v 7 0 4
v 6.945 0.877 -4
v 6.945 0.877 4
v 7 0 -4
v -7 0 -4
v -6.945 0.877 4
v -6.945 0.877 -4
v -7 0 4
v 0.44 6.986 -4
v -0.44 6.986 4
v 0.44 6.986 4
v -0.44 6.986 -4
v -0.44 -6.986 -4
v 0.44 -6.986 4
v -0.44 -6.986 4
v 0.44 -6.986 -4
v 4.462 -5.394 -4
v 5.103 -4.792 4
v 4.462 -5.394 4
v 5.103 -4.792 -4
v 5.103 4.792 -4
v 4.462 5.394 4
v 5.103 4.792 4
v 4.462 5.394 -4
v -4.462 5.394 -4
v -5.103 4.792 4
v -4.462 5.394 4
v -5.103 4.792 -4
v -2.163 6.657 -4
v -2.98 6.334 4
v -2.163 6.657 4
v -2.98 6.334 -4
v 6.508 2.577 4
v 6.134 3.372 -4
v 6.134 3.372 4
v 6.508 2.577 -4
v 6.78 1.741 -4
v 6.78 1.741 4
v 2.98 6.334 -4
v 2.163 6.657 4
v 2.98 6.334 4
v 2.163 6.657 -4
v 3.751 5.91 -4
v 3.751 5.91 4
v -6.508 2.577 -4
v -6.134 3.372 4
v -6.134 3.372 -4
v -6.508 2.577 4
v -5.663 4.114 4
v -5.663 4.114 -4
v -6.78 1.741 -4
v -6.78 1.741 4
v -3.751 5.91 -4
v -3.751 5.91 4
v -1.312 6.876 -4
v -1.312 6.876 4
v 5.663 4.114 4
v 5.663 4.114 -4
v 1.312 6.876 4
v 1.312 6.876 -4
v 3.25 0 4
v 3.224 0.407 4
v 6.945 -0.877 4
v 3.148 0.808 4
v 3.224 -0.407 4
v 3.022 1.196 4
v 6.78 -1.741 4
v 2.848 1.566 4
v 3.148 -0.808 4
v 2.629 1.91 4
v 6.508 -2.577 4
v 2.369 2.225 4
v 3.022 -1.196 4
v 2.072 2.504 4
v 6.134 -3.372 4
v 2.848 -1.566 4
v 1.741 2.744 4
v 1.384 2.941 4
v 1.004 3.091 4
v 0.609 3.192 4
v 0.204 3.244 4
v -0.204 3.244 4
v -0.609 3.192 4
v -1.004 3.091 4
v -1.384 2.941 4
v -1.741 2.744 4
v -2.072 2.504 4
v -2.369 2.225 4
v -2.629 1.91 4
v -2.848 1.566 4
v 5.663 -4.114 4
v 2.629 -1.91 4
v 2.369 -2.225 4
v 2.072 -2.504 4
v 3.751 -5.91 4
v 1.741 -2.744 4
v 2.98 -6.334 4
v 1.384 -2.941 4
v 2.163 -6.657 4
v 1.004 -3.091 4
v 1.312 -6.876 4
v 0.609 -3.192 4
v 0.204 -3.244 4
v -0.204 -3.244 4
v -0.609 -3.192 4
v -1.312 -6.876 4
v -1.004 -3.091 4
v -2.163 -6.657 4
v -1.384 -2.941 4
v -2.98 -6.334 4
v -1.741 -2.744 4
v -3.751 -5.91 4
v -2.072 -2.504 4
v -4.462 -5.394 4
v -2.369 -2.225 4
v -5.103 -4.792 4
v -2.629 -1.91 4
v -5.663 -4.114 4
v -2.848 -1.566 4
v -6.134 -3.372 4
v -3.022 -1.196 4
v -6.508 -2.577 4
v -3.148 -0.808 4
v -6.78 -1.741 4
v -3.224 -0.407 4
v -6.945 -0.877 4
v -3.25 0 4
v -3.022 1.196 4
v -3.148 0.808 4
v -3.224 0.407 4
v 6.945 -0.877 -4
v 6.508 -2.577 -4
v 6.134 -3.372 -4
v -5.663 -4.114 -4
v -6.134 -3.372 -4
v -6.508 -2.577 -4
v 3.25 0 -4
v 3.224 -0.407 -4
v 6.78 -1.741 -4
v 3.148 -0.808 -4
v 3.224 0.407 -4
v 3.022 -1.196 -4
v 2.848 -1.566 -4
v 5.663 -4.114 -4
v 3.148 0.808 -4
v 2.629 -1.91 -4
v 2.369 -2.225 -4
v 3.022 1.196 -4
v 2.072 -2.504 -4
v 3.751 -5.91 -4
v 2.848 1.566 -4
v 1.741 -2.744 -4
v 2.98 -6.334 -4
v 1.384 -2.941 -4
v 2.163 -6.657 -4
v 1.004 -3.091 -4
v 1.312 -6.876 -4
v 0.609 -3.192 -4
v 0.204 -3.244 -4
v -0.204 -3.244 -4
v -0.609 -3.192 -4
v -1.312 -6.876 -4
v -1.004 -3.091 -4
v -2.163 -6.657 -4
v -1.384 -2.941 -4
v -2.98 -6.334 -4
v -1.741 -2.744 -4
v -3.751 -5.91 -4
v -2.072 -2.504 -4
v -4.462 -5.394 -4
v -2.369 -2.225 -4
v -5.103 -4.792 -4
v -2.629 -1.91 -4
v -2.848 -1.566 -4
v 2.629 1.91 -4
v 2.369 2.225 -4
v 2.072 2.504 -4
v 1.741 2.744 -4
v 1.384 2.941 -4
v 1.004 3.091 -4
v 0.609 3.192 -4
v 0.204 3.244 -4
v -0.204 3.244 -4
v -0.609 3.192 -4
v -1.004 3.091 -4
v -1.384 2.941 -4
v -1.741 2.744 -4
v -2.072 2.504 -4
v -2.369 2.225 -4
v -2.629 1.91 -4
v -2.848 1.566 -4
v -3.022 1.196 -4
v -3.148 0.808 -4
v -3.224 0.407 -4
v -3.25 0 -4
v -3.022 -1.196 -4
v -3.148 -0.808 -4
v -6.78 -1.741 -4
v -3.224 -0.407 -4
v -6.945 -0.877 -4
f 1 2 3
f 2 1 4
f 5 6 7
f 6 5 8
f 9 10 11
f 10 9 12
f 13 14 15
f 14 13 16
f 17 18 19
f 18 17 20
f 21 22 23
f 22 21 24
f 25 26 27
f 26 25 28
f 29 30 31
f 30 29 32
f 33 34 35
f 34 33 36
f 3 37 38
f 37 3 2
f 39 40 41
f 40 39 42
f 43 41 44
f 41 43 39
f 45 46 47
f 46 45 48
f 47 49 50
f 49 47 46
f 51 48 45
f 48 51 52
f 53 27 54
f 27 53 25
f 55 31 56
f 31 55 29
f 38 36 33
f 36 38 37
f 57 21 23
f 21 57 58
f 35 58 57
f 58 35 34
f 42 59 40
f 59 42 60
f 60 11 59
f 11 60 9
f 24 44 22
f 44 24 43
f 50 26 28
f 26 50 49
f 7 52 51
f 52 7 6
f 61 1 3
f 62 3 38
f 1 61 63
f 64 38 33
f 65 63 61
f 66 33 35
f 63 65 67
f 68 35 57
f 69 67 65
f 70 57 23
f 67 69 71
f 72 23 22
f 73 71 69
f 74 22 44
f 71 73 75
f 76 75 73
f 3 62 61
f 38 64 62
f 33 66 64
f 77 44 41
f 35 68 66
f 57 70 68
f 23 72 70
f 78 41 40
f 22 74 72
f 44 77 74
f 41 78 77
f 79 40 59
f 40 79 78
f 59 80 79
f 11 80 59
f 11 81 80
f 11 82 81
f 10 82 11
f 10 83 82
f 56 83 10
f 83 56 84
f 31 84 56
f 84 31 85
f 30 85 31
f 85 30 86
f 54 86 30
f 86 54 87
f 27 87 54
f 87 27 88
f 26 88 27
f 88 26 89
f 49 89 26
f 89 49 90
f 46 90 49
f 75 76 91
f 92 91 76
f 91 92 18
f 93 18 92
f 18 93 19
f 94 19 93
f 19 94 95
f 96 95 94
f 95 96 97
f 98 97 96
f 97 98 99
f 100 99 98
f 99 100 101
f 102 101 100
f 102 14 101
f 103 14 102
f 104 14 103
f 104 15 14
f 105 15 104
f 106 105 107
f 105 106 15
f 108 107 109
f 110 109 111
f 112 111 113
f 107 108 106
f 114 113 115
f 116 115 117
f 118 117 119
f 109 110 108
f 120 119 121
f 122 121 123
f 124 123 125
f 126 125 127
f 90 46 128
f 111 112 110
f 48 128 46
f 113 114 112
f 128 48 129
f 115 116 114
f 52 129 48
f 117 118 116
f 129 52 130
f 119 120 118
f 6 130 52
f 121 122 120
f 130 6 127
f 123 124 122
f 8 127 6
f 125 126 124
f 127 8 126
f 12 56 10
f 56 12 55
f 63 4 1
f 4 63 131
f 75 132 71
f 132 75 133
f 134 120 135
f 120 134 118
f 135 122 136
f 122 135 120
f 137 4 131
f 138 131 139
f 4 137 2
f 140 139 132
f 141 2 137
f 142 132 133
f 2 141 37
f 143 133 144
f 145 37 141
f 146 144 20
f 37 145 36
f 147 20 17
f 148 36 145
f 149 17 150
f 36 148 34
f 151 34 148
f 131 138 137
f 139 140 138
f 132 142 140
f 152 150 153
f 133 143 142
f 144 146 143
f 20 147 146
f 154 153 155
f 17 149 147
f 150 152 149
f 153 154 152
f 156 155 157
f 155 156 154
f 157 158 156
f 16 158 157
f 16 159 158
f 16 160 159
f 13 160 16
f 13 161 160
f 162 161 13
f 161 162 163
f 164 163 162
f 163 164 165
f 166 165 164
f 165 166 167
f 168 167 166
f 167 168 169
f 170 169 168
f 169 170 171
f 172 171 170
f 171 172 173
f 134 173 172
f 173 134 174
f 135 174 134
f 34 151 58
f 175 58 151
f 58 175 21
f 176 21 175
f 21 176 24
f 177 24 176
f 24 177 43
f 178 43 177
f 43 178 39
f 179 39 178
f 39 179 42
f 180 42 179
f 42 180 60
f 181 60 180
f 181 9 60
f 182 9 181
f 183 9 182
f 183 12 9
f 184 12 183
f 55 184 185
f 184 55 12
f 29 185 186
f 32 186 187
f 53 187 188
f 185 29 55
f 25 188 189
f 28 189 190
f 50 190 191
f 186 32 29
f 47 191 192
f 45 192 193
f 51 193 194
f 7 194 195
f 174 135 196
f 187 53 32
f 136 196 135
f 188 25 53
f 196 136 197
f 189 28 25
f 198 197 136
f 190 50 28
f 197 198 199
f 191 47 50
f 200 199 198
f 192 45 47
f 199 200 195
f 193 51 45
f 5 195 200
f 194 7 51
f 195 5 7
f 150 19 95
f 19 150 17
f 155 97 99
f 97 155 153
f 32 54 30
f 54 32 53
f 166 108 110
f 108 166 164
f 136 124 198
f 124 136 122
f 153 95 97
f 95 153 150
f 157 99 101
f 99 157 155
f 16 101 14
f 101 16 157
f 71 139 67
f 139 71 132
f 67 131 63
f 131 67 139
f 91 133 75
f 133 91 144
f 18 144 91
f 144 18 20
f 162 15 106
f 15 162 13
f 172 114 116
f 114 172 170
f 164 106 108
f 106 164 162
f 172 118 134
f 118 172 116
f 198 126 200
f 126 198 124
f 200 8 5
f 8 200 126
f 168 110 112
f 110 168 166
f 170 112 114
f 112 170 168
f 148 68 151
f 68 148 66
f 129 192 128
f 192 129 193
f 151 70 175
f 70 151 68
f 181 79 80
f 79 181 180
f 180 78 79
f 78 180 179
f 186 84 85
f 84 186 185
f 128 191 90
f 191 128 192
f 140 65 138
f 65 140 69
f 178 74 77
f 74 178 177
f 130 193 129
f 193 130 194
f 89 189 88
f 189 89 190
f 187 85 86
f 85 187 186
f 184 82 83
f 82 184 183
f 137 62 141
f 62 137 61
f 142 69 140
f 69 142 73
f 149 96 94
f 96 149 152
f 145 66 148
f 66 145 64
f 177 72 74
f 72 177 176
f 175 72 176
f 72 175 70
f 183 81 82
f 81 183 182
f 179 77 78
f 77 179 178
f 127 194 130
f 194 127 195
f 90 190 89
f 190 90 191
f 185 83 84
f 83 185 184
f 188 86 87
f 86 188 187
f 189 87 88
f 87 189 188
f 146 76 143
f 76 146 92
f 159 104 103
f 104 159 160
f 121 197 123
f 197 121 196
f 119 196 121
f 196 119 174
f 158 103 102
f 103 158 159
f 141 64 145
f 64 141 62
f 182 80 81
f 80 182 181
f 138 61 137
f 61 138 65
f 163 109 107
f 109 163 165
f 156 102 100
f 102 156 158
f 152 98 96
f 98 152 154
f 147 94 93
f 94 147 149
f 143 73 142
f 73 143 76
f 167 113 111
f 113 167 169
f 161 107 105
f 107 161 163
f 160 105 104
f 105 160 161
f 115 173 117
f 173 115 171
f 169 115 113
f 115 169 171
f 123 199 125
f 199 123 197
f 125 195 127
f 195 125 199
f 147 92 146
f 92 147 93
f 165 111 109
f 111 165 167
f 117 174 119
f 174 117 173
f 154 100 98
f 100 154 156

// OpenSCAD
$fn = 50;


difference() {
	union() {
		translate(v = [0, 0, -4.0000000000]) {
			cylinder(h = 8, r = 7.0000000000);
		}
	}
	union() {
		translate(v = [0, 0, -100.0000000000]) {
			cylinder(h = 200, r = 3.2500000000);
		}
	}
}
